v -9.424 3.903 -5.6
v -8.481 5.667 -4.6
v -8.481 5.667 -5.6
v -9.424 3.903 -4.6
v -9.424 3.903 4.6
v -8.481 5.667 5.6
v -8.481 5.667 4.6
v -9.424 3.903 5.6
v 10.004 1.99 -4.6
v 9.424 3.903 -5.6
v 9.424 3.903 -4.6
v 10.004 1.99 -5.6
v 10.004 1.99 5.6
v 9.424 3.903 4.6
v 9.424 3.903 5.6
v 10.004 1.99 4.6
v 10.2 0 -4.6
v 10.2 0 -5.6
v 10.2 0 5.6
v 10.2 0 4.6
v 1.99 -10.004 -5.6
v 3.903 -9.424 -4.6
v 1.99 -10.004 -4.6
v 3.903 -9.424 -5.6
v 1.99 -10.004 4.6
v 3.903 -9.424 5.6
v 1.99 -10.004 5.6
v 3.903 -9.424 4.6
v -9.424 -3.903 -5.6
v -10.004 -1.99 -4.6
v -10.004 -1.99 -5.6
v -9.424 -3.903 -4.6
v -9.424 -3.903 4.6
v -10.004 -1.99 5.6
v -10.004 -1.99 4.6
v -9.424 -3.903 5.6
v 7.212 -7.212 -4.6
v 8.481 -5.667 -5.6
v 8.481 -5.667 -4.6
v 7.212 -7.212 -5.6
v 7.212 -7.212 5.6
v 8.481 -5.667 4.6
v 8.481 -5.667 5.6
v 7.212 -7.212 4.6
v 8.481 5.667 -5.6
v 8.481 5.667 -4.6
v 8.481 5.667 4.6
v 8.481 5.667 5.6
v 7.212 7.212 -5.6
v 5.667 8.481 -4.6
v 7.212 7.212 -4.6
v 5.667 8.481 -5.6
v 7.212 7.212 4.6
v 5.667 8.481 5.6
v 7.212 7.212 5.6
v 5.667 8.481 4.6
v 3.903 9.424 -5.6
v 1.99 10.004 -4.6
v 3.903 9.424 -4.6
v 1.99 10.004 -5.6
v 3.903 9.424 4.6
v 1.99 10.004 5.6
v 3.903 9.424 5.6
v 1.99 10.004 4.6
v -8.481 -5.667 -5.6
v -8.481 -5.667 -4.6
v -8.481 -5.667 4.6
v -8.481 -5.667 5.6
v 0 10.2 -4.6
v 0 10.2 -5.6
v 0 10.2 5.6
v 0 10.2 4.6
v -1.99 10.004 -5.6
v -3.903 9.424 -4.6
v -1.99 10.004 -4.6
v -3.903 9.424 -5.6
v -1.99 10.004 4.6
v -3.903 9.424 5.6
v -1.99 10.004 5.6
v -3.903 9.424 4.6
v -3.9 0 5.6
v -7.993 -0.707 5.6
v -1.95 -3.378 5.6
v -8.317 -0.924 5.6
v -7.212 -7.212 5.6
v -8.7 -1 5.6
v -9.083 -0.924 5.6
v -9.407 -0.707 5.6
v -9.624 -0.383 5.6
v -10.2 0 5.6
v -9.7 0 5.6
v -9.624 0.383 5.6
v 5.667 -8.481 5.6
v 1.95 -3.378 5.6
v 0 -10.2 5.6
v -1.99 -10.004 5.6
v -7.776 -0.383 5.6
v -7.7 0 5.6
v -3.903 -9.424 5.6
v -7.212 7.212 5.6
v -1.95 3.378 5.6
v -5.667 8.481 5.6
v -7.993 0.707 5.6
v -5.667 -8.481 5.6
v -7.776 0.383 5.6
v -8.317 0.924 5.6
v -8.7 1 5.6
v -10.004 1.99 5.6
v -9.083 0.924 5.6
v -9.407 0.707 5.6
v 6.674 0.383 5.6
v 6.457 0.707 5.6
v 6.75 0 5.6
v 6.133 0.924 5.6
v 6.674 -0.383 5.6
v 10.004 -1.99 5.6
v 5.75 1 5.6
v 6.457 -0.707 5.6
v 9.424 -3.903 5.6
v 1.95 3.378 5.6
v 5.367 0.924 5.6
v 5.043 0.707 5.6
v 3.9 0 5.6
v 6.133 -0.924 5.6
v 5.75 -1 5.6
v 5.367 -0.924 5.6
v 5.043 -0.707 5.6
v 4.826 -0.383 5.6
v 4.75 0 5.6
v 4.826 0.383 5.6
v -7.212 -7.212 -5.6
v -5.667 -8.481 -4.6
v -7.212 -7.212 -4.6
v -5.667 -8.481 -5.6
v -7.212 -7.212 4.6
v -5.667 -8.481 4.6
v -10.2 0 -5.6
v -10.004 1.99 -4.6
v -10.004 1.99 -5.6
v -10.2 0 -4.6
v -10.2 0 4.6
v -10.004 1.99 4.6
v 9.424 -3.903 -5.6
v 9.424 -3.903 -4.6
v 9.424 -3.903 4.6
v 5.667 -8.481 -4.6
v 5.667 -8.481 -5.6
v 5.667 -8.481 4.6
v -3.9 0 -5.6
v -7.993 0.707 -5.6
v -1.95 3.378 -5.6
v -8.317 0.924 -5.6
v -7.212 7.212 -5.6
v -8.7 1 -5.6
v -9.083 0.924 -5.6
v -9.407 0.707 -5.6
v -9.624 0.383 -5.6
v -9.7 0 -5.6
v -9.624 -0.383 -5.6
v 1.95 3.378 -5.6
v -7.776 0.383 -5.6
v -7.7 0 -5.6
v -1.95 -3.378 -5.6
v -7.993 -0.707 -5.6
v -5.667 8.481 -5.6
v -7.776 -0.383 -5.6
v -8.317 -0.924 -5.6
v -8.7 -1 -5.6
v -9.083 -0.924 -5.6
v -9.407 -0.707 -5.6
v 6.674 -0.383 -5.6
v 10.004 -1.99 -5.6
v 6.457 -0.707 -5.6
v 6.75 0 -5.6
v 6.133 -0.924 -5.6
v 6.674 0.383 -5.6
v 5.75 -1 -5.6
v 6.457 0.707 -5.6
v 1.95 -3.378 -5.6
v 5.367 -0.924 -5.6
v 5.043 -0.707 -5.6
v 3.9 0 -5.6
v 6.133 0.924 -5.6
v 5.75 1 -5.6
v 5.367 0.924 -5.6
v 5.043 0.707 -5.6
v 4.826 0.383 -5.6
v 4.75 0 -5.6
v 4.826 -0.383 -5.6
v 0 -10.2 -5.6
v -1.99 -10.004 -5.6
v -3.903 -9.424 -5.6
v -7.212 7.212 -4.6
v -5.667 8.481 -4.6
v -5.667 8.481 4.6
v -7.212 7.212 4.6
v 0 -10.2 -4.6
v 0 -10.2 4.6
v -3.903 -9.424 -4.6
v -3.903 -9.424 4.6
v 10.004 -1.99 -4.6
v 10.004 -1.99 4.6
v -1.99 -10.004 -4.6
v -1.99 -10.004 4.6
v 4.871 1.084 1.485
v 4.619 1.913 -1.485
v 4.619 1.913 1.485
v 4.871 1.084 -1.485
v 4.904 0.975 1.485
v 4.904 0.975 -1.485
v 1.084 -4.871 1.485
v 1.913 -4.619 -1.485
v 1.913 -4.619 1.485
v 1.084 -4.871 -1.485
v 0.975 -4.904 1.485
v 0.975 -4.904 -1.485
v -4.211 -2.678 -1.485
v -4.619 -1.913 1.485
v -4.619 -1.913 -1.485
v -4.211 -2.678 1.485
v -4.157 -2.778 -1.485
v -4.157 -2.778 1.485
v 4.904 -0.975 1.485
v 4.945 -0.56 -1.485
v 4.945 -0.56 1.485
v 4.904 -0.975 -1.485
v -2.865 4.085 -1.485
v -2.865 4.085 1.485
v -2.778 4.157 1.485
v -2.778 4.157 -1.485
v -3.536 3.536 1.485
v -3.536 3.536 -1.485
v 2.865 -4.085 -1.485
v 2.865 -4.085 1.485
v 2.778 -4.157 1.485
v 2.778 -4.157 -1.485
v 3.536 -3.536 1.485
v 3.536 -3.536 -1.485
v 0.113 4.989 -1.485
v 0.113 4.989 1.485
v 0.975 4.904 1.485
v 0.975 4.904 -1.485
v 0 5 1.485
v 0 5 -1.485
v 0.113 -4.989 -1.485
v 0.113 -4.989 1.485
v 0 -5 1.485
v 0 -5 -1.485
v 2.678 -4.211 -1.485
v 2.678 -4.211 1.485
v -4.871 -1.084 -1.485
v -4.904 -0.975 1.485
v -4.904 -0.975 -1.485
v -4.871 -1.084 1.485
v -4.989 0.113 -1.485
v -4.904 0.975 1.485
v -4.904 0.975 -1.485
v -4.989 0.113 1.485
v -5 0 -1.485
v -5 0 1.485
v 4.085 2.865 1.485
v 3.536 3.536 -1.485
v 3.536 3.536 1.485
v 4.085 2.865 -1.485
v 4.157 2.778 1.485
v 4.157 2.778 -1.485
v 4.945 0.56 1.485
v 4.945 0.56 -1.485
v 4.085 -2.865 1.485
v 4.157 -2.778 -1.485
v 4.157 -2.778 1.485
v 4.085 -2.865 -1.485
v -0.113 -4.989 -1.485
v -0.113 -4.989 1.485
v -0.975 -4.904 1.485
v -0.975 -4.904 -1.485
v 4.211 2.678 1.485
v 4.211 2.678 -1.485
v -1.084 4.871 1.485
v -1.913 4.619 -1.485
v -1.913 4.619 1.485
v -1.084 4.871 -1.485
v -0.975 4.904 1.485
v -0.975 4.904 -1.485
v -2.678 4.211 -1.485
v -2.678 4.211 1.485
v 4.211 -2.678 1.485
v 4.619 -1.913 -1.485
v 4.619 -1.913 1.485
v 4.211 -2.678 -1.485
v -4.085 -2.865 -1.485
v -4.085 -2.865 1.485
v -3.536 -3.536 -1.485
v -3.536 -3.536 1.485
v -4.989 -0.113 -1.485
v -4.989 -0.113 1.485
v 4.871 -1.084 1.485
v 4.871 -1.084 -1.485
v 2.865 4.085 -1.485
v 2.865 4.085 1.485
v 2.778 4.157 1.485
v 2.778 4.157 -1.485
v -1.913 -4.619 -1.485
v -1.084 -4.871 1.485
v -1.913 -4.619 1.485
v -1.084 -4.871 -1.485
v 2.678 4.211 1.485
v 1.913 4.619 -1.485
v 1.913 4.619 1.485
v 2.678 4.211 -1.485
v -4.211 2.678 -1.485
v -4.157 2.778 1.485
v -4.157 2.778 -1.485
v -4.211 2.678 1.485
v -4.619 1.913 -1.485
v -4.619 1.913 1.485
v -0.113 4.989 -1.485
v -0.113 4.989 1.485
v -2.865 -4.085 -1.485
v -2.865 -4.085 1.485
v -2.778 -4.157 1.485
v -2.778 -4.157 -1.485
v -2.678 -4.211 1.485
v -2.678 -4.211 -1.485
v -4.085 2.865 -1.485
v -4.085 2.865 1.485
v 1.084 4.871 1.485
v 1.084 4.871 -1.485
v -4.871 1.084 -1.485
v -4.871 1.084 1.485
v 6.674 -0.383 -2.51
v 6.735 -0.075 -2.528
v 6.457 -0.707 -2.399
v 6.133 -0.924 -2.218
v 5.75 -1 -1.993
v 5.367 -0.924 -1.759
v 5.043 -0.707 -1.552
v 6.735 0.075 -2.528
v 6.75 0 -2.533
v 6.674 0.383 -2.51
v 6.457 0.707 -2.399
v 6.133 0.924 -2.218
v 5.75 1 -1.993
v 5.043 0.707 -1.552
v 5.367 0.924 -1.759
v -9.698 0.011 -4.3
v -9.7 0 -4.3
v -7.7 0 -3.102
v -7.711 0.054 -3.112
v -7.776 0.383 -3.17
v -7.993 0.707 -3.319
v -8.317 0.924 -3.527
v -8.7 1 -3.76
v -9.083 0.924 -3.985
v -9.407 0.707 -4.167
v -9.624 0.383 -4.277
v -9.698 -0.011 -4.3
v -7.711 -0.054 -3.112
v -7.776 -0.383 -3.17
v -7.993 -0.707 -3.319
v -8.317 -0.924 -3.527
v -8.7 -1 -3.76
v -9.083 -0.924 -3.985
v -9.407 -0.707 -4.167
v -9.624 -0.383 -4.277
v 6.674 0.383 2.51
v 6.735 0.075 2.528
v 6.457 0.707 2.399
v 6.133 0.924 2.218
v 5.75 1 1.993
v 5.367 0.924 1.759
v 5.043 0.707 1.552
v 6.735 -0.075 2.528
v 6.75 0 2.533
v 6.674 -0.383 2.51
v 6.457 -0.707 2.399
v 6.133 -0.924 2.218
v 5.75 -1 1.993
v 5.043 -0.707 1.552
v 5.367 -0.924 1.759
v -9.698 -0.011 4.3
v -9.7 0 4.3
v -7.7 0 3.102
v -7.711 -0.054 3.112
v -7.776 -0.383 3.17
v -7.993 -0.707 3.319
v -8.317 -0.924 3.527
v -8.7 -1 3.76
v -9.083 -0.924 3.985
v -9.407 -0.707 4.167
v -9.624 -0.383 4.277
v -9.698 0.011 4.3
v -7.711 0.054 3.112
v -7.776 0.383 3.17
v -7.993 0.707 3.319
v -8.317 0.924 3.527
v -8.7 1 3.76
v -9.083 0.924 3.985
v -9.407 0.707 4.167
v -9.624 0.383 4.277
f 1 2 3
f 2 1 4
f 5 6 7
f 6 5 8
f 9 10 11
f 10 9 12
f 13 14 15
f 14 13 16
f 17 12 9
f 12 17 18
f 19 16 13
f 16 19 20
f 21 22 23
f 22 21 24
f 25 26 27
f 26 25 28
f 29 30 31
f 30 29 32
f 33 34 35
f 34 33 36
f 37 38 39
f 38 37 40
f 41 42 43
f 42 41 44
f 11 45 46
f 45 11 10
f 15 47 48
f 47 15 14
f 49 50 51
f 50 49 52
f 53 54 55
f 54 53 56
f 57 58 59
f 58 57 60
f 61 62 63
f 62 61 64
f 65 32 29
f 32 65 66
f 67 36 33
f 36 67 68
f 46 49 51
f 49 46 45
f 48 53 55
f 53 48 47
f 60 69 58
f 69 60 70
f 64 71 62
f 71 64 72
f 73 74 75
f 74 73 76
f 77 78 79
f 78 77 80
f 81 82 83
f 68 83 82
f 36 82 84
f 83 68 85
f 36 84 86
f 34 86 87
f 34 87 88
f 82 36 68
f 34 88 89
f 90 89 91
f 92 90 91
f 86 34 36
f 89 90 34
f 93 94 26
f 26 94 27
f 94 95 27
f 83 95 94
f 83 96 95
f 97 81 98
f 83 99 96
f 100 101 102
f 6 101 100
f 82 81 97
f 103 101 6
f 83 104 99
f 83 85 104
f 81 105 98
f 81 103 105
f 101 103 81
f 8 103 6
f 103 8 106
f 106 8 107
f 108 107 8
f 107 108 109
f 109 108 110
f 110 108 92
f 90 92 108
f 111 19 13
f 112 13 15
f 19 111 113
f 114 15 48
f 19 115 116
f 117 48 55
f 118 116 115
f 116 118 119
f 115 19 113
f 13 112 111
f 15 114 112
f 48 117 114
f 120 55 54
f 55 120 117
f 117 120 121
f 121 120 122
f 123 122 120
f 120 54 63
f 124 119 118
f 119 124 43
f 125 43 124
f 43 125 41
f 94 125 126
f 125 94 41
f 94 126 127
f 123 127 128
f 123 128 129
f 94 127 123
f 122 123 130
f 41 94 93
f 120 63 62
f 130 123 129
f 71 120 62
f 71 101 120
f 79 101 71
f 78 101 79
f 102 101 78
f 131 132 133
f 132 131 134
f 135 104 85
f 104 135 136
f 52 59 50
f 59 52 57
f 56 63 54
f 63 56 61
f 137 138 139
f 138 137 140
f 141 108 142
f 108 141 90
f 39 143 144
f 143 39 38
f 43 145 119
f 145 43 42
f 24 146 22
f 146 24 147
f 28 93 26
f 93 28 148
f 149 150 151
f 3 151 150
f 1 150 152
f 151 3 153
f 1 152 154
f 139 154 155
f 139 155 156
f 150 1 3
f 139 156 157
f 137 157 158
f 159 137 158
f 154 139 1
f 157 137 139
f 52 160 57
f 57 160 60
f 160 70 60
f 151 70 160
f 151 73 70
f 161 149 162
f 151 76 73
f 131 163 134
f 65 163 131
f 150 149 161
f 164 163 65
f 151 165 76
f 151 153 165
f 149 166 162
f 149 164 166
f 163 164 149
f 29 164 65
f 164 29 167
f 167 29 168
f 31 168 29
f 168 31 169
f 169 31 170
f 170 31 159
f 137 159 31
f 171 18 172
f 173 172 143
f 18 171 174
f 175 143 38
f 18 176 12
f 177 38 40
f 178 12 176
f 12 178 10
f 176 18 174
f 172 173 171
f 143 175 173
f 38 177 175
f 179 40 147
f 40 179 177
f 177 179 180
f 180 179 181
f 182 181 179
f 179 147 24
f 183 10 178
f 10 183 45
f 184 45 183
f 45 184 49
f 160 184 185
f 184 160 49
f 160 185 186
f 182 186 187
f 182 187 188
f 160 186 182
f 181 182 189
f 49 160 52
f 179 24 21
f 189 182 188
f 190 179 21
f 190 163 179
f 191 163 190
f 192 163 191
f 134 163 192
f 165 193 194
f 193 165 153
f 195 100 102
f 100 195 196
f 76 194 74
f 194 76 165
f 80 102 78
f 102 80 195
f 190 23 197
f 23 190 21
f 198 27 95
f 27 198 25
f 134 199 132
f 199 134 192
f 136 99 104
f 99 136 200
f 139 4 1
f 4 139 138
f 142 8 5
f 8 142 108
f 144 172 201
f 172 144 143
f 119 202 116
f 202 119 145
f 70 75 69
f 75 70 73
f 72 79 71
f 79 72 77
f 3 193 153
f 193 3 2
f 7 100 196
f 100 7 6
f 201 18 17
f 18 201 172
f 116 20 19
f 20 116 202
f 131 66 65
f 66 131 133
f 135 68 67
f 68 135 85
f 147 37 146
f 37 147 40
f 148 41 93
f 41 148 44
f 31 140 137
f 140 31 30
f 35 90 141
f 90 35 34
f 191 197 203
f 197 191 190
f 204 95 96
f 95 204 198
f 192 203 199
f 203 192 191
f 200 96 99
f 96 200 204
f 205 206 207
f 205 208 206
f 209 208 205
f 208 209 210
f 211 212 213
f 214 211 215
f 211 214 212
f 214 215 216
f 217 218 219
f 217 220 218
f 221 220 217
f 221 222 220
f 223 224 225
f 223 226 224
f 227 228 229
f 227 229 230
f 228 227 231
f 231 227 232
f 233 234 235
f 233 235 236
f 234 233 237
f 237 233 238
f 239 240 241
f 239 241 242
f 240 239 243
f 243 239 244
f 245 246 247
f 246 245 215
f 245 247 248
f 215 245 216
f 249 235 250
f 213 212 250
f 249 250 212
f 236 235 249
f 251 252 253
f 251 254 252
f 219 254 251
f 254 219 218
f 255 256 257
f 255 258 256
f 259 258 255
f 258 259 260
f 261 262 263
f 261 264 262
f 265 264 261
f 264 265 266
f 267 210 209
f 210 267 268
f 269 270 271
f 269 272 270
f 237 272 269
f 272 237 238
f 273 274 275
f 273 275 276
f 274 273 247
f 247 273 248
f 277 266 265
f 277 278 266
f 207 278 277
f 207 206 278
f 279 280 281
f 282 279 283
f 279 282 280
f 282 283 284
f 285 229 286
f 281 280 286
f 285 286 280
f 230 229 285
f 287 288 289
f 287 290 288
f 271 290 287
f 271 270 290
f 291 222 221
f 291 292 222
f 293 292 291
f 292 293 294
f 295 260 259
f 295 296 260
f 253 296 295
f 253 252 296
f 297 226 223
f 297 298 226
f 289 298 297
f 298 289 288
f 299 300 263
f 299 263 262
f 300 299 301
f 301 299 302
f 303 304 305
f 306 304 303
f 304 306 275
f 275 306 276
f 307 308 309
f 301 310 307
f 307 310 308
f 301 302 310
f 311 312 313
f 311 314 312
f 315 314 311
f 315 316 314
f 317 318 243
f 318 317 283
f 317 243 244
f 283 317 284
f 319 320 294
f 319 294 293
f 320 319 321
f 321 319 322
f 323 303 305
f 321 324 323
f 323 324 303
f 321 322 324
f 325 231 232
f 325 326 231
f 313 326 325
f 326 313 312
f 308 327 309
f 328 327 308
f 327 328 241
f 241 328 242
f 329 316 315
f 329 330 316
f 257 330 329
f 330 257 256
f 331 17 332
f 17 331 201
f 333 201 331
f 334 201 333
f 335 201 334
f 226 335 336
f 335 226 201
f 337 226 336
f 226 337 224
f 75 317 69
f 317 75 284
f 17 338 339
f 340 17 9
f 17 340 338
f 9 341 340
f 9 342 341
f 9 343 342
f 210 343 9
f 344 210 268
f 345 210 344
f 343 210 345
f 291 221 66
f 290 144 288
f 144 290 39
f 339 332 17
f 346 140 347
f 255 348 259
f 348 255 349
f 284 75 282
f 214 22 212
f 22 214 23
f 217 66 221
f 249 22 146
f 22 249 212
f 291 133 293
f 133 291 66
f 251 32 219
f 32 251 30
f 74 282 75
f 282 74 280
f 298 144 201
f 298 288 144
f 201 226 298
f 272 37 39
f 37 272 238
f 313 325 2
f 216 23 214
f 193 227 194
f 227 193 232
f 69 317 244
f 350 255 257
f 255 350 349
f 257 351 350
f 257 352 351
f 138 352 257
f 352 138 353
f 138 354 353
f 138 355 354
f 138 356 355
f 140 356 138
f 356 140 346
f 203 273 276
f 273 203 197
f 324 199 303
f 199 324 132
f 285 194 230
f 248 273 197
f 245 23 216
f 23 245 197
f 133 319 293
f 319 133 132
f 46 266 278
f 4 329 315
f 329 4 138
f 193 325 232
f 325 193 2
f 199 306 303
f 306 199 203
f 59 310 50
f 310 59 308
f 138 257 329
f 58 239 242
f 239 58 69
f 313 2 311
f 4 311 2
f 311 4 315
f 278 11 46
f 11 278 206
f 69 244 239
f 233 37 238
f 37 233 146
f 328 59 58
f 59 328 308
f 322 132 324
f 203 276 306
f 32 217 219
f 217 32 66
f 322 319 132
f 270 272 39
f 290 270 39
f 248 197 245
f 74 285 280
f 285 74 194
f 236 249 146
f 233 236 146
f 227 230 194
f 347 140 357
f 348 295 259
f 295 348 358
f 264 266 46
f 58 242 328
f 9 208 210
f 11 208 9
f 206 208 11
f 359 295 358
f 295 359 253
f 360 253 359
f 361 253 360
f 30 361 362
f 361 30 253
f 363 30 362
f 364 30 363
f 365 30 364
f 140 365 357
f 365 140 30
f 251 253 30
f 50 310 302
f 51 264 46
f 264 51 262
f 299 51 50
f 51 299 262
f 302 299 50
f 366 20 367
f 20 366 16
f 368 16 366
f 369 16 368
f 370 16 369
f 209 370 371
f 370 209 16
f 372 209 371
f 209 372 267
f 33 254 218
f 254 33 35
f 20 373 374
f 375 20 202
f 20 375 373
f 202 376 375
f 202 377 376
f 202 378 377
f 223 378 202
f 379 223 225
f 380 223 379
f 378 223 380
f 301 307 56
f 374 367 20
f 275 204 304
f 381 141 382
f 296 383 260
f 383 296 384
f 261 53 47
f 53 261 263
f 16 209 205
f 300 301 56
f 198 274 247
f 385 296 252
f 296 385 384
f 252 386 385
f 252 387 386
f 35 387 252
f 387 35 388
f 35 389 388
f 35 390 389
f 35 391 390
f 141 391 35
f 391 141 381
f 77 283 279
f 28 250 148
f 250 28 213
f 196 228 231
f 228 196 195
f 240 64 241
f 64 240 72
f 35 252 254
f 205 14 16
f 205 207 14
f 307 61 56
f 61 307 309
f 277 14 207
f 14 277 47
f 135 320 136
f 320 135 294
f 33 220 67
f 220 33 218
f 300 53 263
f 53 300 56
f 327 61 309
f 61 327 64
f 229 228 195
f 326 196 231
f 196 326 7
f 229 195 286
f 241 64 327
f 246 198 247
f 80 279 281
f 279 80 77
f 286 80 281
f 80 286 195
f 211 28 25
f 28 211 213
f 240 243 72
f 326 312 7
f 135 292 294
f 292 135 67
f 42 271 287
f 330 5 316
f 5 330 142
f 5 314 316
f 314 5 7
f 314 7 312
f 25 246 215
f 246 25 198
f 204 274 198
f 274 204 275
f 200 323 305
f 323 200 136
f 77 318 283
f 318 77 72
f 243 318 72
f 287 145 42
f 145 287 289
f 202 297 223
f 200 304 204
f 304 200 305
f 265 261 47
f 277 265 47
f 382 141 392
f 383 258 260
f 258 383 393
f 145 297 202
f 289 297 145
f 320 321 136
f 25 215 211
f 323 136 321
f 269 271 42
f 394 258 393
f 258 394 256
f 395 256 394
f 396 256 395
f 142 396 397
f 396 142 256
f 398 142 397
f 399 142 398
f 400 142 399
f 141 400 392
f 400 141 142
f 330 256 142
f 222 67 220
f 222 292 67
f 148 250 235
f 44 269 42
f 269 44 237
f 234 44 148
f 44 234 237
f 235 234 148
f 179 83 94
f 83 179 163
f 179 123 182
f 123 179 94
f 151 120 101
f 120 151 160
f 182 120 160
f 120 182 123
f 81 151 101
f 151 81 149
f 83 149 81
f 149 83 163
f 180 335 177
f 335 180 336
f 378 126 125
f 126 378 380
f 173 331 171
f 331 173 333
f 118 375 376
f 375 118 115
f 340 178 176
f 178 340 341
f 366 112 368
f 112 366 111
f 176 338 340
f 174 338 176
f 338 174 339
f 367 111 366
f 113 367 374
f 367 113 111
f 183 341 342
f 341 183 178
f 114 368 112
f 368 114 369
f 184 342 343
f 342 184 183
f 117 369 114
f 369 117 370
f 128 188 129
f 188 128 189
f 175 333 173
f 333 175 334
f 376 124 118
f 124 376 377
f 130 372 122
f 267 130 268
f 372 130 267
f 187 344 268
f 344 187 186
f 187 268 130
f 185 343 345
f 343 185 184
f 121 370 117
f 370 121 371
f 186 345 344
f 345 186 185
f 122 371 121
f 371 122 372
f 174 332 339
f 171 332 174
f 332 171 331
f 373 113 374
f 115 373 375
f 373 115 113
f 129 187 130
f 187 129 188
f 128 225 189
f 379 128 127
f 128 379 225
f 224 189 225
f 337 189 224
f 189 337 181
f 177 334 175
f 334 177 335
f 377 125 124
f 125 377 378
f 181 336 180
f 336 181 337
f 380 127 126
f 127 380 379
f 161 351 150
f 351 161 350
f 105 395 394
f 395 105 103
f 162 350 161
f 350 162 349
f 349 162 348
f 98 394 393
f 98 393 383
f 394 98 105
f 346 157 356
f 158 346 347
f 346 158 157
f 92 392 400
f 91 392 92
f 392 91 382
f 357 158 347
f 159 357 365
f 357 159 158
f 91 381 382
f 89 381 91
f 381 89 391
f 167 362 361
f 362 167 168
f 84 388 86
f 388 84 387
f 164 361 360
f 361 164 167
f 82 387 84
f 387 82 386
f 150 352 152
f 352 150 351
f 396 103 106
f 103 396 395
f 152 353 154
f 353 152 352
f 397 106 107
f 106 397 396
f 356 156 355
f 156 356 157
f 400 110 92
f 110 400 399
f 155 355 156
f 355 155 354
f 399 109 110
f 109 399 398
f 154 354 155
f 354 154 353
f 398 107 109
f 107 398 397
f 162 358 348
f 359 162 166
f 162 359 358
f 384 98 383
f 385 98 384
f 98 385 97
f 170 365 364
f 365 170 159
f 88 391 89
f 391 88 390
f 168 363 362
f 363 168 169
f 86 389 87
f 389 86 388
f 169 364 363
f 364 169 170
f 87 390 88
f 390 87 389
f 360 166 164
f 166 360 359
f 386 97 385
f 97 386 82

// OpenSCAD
$fn=32;

height = 1*11.2;
diameter = 20.4;

difference(){
  union(){
  cylinder(d=10, h =height,center = true);

  difference(){
    cylinder(d=diameter, h =height,center = true);
    cylinder(d=diameter+1, h =height-2, center = true);
  }
  
  
  translate([0,0,-height/2+1])
  linear_extrude(height=5.5, scale=0.1)
  circle(d=diameter);
  
  mirror([0,0,1])
  translate([0,0,-height/2+1])
  linear_extrude(height=5.5, scale=0.1)
  circle(d=diameter);
  
  }
  cylinder(d=7.8, h =height+1, center = true,$fn = 6);
  
  translate([5.75,0,0])
  cylinder(d=2, h =height+1, center = true,$fn = 16);
  translate([-(diameter/2 -1.5),0,0])
  cylinder(d=2, h =height+1, center = true,$fn = 16);
}

//  color("blue")   cylinder(d=6.3, h =12, center = true,$fn = 64);
